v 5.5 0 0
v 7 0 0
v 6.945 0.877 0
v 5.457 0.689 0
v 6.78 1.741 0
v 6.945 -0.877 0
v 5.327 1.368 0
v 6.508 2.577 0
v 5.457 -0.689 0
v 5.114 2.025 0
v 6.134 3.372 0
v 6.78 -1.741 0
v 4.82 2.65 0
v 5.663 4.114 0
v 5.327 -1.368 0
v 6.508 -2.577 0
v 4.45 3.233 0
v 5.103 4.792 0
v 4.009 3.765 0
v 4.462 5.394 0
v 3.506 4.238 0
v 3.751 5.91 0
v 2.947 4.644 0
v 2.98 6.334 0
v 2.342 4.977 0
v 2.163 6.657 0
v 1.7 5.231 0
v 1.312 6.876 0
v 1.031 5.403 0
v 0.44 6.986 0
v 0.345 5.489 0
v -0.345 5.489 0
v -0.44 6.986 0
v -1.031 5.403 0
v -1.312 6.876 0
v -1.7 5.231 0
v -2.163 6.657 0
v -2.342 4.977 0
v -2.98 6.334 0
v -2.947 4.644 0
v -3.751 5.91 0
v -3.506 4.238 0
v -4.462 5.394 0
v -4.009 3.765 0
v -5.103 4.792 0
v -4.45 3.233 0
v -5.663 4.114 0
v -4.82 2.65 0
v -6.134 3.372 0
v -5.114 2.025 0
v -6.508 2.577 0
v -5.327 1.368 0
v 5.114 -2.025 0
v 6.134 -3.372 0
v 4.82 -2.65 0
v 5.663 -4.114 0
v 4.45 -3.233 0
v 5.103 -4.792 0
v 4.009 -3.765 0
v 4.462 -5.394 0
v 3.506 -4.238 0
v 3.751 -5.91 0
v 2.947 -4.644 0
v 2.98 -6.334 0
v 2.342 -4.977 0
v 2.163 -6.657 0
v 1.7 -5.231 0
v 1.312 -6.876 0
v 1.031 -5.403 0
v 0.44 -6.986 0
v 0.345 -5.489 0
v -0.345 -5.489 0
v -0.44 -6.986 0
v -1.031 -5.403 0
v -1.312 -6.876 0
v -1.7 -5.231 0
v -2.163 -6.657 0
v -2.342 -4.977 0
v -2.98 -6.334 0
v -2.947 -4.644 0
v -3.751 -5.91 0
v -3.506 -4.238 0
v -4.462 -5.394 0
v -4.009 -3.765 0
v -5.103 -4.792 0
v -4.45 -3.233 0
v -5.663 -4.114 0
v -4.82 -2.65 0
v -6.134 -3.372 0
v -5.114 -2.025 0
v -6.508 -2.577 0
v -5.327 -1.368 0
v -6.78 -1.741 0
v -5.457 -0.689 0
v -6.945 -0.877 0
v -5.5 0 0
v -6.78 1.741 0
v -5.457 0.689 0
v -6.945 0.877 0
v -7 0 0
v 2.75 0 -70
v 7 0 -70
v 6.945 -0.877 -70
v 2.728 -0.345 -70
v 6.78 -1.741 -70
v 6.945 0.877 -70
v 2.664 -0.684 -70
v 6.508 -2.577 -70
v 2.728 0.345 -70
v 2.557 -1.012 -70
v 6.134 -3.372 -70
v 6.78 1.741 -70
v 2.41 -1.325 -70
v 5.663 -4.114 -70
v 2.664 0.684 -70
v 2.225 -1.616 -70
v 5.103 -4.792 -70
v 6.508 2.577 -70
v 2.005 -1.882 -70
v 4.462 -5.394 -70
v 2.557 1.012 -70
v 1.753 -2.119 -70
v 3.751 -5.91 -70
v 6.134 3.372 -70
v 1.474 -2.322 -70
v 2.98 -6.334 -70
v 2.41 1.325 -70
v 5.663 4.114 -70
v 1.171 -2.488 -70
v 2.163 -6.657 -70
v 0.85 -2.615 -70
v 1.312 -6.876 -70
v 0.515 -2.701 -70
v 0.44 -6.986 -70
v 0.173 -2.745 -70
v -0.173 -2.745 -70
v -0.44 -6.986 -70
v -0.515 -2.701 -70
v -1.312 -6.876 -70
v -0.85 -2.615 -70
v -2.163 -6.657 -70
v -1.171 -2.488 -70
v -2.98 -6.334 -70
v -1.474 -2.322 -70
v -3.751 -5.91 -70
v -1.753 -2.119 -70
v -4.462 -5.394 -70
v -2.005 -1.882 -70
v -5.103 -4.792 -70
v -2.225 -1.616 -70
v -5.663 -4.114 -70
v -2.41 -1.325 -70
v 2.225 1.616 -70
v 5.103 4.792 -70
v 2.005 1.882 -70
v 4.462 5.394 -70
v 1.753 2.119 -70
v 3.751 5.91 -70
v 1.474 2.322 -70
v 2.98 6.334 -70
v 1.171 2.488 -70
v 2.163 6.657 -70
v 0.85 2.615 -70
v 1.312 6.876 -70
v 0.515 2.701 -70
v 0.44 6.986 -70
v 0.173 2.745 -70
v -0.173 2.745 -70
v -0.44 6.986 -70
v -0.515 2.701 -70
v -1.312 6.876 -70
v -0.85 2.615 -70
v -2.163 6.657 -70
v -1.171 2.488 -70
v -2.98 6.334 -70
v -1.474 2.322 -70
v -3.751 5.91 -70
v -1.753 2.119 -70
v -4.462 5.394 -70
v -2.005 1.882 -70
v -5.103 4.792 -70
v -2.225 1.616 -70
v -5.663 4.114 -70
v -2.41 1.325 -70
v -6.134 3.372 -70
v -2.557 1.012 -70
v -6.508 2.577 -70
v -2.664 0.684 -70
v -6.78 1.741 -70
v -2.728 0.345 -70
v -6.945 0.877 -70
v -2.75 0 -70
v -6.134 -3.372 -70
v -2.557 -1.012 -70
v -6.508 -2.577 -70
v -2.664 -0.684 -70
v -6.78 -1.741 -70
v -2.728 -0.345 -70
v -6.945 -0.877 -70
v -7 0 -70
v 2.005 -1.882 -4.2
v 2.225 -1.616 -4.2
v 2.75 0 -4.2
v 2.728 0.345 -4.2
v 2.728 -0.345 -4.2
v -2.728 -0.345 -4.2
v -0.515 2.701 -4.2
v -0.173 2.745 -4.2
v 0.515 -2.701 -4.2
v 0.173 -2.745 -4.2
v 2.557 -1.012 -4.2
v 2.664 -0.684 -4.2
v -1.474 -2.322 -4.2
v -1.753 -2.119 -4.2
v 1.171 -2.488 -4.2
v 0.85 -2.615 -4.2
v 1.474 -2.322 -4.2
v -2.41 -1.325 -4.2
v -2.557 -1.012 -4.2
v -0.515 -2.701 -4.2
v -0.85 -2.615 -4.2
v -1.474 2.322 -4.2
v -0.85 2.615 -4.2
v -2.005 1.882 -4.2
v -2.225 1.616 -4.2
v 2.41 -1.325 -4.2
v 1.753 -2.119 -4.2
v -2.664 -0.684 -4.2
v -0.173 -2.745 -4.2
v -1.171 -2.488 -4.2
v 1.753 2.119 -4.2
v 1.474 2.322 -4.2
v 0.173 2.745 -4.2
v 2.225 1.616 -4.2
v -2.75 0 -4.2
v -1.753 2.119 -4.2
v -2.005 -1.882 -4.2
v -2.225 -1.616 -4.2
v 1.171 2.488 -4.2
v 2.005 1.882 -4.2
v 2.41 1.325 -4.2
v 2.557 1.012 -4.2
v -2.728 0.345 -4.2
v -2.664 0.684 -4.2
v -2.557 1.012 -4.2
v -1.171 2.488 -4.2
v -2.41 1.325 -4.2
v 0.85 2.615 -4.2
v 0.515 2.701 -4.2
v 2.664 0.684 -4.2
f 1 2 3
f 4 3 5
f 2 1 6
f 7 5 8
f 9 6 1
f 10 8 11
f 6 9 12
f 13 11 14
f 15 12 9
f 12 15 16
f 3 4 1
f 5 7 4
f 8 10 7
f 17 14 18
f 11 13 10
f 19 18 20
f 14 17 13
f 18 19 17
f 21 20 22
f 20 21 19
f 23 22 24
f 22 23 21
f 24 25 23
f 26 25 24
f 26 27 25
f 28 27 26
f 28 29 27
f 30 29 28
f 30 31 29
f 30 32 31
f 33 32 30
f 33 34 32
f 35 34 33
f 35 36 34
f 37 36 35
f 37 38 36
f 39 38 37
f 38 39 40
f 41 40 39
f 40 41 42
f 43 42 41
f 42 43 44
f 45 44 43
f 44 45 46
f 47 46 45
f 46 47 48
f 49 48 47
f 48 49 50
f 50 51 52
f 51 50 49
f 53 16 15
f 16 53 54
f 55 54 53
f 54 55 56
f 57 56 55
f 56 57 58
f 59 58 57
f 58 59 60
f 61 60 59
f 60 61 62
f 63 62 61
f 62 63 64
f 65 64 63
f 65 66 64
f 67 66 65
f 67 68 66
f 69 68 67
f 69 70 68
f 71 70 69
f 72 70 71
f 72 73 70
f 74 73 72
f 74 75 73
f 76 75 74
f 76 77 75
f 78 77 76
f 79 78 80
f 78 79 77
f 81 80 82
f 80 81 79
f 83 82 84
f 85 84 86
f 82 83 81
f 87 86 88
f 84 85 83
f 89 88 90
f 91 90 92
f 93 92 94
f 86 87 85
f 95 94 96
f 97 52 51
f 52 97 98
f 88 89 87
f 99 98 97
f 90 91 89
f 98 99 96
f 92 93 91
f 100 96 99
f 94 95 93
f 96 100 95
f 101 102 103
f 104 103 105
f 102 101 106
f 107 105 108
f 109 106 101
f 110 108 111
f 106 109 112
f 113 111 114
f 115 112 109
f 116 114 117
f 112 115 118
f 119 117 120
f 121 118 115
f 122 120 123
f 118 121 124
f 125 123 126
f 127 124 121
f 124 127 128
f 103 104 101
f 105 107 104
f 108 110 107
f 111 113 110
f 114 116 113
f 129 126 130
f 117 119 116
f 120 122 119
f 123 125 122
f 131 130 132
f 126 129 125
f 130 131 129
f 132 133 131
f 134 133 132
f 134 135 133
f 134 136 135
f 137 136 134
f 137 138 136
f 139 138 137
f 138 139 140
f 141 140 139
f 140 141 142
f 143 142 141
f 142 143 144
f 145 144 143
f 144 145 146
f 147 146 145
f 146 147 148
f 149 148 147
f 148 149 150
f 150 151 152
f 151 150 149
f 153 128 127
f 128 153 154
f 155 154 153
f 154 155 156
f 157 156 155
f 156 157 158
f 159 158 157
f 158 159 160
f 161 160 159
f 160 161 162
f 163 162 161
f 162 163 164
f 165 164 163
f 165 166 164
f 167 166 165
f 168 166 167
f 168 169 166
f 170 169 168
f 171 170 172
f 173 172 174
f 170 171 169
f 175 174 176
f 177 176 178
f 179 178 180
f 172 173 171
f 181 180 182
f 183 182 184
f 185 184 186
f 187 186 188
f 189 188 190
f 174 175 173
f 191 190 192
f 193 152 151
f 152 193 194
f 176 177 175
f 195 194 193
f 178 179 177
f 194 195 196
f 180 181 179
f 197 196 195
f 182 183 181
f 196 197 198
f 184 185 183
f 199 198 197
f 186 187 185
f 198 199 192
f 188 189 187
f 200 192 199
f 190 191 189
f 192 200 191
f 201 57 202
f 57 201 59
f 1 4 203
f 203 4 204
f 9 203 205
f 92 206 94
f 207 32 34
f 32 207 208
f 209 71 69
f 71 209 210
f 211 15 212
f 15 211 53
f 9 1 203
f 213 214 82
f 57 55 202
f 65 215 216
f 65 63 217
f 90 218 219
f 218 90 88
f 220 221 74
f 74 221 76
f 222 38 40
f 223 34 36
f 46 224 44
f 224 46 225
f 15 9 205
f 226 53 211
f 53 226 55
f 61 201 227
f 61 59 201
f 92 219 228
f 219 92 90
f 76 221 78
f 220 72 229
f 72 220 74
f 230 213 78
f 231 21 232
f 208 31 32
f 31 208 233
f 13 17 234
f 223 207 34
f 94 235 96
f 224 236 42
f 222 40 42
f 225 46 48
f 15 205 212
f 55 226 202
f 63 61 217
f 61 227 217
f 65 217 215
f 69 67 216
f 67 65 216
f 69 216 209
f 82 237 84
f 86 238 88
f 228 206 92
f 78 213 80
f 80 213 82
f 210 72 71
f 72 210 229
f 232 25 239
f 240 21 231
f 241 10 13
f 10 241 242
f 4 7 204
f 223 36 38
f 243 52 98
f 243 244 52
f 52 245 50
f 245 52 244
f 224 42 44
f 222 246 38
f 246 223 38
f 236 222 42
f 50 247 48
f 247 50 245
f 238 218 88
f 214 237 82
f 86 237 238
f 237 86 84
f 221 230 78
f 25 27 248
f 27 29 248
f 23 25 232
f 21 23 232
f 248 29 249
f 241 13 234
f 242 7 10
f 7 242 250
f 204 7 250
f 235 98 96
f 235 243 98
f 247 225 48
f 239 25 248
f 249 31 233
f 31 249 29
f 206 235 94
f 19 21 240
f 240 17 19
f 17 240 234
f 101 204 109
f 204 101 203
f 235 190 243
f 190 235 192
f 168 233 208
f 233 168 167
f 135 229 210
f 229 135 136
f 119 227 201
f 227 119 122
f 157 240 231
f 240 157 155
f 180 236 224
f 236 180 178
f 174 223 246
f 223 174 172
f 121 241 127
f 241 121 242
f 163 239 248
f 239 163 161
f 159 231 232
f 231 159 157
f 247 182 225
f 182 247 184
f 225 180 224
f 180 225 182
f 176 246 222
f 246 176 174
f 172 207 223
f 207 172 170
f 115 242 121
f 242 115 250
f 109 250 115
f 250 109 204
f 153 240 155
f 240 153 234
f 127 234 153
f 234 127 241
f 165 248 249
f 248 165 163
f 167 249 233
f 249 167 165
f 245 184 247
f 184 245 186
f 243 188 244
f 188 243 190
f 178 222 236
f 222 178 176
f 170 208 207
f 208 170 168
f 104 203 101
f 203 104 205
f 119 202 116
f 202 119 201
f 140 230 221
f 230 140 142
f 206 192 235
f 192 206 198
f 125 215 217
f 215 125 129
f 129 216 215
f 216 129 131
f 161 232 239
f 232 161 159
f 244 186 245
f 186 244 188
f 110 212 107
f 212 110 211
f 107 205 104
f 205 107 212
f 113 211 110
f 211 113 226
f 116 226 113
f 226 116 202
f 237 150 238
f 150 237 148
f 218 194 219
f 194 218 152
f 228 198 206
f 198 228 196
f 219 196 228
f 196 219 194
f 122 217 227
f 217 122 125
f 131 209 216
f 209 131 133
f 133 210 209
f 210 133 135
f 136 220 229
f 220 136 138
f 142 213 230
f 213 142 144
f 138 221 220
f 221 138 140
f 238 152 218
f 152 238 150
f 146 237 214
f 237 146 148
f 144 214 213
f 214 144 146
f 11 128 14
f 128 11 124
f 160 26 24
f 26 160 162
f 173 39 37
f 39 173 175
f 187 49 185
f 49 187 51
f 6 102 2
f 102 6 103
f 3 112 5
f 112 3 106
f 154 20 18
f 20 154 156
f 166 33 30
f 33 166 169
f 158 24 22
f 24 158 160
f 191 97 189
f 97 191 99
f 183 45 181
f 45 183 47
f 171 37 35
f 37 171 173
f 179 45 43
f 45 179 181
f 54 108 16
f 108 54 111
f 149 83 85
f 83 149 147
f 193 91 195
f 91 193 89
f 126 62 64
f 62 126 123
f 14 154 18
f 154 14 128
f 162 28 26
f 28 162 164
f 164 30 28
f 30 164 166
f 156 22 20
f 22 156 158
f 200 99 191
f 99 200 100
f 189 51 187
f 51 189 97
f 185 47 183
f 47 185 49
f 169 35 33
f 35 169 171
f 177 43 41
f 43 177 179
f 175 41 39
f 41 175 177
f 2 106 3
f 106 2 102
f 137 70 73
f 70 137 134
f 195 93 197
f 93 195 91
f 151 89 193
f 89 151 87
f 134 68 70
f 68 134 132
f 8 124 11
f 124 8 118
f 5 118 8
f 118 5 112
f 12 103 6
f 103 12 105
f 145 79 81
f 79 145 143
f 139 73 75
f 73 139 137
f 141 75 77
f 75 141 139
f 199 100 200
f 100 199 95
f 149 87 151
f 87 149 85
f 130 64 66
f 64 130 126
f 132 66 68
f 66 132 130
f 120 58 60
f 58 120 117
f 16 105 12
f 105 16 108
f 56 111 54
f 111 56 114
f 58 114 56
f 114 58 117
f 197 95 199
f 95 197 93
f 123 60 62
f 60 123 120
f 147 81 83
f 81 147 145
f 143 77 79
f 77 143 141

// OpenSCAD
$fn = 50;


difference() {
	union() {
		translate(v = [0, 0, -70.0000000000]) {
			cylinder(h = 70, r = 7.0000000000);
		}
		cylinder(h = 0, r = 16.0000000000);
	}
	union() {
		translate(v = [0, 0, 0]) {
			rotate(a = [0, 0, 0]) {
				difference() {
					union() {
						#translate(v = [0, 0, -70.0000000000]) {
							cylinder(h = 70, r = 2.2500000000);
						}
						#translate(v = [0, 0, -4.2000000000]) {
							cylinder(h = 4.2000000000, r = 7.0000000000, r1 = 2.7500000000, r2 = 5.5000000000);
						}
						#translate(v = [0, 0, -70.0000000000]) {
							cylinder(h = 70, r = 2.7500000000);
						}
						#translate(v = [0, 0, -70.0000000000]) {
							cylinder(h = 70, r = 2.2500000000);
						}
					}
					union();
				}
			}
		}
	}
}
